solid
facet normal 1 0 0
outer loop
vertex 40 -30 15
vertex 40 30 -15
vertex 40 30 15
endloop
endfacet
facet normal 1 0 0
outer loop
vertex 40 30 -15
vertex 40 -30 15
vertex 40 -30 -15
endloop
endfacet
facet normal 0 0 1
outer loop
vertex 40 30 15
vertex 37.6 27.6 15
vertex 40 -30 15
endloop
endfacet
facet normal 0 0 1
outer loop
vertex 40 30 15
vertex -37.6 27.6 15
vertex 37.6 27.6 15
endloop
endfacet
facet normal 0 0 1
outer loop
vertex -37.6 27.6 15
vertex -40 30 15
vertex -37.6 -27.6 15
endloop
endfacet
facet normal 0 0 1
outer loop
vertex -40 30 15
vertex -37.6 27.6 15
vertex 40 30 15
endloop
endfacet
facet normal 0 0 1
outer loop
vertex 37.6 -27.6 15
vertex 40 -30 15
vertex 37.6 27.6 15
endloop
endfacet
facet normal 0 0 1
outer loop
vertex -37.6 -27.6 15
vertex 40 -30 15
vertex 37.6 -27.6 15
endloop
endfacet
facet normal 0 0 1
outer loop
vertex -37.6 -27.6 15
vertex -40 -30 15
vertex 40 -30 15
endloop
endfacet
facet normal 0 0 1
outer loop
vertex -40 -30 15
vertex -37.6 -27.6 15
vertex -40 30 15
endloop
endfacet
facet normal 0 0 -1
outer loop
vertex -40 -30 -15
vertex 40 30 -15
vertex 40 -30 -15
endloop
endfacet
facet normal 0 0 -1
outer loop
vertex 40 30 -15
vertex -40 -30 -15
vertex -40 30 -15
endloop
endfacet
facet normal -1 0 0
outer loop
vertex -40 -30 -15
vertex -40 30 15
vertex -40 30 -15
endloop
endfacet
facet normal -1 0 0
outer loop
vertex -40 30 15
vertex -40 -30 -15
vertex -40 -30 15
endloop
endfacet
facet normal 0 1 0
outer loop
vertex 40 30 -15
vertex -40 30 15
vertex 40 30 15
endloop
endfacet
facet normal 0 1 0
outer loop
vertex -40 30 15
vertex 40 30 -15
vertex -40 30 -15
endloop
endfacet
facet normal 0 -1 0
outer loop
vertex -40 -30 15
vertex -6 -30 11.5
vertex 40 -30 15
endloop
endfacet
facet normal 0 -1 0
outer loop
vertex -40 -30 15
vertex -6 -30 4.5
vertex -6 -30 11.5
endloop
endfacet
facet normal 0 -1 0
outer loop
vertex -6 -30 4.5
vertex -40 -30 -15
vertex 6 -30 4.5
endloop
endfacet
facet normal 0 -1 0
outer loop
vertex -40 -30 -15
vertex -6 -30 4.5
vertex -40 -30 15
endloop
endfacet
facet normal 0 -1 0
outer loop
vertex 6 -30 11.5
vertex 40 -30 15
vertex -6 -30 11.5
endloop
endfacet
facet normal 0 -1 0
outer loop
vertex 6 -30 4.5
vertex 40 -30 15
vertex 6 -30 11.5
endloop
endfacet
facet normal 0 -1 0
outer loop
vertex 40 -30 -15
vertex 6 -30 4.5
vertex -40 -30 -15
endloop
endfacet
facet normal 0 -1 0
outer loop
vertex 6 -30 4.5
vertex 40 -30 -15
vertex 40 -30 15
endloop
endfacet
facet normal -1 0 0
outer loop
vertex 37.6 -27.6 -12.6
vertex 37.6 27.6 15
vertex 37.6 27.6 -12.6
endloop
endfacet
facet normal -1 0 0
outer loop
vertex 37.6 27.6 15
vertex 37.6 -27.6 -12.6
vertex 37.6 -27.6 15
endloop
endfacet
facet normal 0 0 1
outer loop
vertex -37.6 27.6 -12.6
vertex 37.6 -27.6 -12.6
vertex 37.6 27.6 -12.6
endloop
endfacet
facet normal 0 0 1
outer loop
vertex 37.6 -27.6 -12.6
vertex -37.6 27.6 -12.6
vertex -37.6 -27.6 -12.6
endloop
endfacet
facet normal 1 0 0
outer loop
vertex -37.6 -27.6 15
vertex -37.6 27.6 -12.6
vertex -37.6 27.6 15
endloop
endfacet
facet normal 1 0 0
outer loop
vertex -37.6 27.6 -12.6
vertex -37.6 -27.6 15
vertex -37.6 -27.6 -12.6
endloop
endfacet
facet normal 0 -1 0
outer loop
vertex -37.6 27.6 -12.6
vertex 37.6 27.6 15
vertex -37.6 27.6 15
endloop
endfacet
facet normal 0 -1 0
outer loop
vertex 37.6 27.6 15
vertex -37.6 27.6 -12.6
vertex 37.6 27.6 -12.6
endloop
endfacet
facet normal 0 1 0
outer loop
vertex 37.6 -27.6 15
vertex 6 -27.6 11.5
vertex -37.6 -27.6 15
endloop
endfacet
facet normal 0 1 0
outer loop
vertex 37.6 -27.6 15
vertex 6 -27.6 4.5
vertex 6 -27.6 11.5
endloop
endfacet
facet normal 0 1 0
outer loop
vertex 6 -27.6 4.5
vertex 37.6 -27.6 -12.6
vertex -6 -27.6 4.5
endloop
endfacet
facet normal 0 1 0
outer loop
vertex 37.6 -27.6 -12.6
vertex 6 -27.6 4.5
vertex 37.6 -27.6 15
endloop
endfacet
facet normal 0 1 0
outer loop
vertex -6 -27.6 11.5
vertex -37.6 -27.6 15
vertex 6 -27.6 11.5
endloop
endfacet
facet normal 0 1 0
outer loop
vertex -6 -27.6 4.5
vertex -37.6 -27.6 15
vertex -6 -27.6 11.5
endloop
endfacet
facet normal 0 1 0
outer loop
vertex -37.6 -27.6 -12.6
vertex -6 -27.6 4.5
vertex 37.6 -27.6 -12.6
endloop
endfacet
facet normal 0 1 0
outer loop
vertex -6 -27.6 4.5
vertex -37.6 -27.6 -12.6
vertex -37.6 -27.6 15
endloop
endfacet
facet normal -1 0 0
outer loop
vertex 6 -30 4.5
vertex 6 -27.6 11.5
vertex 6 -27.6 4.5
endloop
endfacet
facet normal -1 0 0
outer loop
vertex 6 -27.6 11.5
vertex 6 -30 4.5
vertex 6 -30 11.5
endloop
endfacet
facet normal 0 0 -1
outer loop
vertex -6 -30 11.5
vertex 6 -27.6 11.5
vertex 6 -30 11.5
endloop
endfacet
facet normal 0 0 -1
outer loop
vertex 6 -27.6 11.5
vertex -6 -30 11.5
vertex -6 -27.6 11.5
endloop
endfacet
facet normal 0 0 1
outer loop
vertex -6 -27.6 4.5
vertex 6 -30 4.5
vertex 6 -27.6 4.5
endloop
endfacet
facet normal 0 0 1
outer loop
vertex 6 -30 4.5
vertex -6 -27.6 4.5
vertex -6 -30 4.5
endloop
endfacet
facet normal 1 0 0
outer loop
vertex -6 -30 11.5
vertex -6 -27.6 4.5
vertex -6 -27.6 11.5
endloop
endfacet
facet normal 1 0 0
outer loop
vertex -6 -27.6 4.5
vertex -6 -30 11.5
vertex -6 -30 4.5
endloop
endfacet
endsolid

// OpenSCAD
// ========================================
// electronics enclosure — body
// NeuroCAD canonical IR; dimensions are millimetres
// ========================================
$fn = 64;

difference() {
  cube(size=[80, 60, 30], center=true);
  translate([0, 0, 1.3]) {
    cube(size=[75.2, 55.2, 27.8], center=true);
  }
  translate([0, -28.8, 8]) {
    cube(size=[12, 4.4, 7], center=true);
  }
}
